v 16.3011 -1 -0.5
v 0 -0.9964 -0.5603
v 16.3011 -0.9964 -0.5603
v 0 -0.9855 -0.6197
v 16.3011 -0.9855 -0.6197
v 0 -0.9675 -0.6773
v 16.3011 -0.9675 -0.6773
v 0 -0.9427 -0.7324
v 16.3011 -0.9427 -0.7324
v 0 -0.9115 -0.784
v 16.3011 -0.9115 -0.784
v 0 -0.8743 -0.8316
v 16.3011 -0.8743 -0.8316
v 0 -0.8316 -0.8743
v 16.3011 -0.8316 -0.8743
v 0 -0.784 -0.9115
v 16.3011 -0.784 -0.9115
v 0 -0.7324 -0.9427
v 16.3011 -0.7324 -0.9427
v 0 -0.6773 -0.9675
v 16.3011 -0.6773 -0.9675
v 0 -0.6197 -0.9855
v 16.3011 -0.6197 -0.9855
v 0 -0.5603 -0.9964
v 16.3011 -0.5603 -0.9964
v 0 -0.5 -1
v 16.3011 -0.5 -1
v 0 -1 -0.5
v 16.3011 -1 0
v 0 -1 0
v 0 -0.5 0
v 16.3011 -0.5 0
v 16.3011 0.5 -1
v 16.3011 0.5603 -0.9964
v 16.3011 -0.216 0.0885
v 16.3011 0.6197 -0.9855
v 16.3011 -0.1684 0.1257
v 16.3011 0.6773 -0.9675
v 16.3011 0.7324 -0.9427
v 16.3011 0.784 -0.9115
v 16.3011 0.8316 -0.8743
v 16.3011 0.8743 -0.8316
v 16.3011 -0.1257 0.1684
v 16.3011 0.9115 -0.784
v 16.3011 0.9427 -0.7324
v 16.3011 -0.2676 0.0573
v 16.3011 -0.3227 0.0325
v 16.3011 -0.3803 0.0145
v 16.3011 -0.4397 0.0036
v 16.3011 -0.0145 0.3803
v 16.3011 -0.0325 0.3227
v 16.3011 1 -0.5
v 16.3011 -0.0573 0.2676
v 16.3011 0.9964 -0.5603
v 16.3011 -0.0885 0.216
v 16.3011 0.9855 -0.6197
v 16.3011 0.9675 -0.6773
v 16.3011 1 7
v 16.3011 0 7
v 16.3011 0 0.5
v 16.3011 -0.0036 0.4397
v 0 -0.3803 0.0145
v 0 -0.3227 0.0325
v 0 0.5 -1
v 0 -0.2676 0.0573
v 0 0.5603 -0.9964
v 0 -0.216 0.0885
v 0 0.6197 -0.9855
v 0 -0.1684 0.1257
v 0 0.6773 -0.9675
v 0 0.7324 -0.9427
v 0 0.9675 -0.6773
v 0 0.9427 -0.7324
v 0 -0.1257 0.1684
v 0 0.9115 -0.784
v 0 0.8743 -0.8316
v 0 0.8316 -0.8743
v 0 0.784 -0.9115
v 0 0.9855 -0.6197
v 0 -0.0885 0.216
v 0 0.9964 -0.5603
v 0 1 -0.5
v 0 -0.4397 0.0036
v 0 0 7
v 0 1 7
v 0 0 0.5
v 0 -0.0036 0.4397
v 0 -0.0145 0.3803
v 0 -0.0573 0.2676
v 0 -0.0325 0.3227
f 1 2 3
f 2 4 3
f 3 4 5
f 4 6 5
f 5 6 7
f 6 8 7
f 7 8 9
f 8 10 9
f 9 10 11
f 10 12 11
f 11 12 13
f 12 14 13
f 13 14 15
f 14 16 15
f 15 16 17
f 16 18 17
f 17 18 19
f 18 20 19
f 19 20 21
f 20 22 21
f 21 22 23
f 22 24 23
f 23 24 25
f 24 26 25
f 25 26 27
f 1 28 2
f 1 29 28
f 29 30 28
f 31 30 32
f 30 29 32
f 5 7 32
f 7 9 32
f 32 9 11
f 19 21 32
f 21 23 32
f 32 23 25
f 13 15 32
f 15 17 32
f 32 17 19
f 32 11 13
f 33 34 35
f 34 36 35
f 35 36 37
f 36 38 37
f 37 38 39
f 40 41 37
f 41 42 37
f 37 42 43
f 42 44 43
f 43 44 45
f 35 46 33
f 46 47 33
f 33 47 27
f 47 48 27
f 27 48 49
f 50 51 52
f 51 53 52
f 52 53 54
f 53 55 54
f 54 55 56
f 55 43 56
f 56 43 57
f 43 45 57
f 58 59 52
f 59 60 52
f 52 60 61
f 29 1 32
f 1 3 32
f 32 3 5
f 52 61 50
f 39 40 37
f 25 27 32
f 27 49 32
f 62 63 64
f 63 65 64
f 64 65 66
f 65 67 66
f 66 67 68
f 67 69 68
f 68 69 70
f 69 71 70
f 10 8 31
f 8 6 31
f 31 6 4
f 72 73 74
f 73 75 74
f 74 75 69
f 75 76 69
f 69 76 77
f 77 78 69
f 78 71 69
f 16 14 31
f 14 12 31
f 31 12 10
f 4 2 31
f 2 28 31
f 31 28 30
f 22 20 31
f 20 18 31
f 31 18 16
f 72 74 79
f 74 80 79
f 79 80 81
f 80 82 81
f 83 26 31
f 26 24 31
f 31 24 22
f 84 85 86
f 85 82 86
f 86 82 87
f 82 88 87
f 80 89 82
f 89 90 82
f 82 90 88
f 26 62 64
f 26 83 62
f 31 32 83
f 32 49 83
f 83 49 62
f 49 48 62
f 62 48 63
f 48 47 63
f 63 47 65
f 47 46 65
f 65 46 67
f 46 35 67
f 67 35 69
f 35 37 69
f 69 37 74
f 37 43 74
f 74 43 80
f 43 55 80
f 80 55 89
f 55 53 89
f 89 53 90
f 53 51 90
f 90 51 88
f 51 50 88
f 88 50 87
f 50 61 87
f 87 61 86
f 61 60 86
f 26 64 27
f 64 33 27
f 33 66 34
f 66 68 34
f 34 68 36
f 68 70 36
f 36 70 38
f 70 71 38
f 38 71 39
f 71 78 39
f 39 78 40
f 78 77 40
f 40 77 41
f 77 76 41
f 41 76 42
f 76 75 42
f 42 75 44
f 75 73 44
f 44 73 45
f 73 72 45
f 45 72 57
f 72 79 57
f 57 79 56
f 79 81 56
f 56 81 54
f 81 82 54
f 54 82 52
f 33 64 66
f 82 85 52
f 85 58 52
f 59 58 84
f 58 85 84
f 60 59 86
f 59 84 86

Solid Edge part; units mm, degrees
sketch "Sketch1" plane through (0, 0, 0) normal (0, 0, 1) x (1, 0, 0)
  line L0 (0, 0) -> (16.3011, 0)
  line L1 (16.3011, 1) -> (16.3011, 0)
  line L2 (16.3011, 1) -> (0, 1)
  line L3 (0, 1) -> (0, 0)
extrude "Protrusion1" add sketch "Sketch1" along normal blind 7
sketch "Sketch2" plane through (0, 0, 0) normal (0, 0, 1) x (1, 0, 0)
  line L0 (0, 0) -> (0, -1)
  line L1 (0, -1) -> (16.3011, -1)
  line L2 (16.3011, -1) -> (16.3011, 0)
  line L3 (16.3011, 1) -> (16.3011, 0)
  line L4 (16.3011, 1) -> (0, 1)
  line L5 (0, 1) -> (0, 0)
extrude "ProtrusioneEstrusa_6" add sketch "Sketch2" against normal blind 1
fillet "Rotondo_3" radius 0.5 2 edges at (8.1505, 1, -1) (8.1505, 0, 0)
fillet "Rotondo_5" radius 0.5 1 edges at (8.1505, -1, -1)
